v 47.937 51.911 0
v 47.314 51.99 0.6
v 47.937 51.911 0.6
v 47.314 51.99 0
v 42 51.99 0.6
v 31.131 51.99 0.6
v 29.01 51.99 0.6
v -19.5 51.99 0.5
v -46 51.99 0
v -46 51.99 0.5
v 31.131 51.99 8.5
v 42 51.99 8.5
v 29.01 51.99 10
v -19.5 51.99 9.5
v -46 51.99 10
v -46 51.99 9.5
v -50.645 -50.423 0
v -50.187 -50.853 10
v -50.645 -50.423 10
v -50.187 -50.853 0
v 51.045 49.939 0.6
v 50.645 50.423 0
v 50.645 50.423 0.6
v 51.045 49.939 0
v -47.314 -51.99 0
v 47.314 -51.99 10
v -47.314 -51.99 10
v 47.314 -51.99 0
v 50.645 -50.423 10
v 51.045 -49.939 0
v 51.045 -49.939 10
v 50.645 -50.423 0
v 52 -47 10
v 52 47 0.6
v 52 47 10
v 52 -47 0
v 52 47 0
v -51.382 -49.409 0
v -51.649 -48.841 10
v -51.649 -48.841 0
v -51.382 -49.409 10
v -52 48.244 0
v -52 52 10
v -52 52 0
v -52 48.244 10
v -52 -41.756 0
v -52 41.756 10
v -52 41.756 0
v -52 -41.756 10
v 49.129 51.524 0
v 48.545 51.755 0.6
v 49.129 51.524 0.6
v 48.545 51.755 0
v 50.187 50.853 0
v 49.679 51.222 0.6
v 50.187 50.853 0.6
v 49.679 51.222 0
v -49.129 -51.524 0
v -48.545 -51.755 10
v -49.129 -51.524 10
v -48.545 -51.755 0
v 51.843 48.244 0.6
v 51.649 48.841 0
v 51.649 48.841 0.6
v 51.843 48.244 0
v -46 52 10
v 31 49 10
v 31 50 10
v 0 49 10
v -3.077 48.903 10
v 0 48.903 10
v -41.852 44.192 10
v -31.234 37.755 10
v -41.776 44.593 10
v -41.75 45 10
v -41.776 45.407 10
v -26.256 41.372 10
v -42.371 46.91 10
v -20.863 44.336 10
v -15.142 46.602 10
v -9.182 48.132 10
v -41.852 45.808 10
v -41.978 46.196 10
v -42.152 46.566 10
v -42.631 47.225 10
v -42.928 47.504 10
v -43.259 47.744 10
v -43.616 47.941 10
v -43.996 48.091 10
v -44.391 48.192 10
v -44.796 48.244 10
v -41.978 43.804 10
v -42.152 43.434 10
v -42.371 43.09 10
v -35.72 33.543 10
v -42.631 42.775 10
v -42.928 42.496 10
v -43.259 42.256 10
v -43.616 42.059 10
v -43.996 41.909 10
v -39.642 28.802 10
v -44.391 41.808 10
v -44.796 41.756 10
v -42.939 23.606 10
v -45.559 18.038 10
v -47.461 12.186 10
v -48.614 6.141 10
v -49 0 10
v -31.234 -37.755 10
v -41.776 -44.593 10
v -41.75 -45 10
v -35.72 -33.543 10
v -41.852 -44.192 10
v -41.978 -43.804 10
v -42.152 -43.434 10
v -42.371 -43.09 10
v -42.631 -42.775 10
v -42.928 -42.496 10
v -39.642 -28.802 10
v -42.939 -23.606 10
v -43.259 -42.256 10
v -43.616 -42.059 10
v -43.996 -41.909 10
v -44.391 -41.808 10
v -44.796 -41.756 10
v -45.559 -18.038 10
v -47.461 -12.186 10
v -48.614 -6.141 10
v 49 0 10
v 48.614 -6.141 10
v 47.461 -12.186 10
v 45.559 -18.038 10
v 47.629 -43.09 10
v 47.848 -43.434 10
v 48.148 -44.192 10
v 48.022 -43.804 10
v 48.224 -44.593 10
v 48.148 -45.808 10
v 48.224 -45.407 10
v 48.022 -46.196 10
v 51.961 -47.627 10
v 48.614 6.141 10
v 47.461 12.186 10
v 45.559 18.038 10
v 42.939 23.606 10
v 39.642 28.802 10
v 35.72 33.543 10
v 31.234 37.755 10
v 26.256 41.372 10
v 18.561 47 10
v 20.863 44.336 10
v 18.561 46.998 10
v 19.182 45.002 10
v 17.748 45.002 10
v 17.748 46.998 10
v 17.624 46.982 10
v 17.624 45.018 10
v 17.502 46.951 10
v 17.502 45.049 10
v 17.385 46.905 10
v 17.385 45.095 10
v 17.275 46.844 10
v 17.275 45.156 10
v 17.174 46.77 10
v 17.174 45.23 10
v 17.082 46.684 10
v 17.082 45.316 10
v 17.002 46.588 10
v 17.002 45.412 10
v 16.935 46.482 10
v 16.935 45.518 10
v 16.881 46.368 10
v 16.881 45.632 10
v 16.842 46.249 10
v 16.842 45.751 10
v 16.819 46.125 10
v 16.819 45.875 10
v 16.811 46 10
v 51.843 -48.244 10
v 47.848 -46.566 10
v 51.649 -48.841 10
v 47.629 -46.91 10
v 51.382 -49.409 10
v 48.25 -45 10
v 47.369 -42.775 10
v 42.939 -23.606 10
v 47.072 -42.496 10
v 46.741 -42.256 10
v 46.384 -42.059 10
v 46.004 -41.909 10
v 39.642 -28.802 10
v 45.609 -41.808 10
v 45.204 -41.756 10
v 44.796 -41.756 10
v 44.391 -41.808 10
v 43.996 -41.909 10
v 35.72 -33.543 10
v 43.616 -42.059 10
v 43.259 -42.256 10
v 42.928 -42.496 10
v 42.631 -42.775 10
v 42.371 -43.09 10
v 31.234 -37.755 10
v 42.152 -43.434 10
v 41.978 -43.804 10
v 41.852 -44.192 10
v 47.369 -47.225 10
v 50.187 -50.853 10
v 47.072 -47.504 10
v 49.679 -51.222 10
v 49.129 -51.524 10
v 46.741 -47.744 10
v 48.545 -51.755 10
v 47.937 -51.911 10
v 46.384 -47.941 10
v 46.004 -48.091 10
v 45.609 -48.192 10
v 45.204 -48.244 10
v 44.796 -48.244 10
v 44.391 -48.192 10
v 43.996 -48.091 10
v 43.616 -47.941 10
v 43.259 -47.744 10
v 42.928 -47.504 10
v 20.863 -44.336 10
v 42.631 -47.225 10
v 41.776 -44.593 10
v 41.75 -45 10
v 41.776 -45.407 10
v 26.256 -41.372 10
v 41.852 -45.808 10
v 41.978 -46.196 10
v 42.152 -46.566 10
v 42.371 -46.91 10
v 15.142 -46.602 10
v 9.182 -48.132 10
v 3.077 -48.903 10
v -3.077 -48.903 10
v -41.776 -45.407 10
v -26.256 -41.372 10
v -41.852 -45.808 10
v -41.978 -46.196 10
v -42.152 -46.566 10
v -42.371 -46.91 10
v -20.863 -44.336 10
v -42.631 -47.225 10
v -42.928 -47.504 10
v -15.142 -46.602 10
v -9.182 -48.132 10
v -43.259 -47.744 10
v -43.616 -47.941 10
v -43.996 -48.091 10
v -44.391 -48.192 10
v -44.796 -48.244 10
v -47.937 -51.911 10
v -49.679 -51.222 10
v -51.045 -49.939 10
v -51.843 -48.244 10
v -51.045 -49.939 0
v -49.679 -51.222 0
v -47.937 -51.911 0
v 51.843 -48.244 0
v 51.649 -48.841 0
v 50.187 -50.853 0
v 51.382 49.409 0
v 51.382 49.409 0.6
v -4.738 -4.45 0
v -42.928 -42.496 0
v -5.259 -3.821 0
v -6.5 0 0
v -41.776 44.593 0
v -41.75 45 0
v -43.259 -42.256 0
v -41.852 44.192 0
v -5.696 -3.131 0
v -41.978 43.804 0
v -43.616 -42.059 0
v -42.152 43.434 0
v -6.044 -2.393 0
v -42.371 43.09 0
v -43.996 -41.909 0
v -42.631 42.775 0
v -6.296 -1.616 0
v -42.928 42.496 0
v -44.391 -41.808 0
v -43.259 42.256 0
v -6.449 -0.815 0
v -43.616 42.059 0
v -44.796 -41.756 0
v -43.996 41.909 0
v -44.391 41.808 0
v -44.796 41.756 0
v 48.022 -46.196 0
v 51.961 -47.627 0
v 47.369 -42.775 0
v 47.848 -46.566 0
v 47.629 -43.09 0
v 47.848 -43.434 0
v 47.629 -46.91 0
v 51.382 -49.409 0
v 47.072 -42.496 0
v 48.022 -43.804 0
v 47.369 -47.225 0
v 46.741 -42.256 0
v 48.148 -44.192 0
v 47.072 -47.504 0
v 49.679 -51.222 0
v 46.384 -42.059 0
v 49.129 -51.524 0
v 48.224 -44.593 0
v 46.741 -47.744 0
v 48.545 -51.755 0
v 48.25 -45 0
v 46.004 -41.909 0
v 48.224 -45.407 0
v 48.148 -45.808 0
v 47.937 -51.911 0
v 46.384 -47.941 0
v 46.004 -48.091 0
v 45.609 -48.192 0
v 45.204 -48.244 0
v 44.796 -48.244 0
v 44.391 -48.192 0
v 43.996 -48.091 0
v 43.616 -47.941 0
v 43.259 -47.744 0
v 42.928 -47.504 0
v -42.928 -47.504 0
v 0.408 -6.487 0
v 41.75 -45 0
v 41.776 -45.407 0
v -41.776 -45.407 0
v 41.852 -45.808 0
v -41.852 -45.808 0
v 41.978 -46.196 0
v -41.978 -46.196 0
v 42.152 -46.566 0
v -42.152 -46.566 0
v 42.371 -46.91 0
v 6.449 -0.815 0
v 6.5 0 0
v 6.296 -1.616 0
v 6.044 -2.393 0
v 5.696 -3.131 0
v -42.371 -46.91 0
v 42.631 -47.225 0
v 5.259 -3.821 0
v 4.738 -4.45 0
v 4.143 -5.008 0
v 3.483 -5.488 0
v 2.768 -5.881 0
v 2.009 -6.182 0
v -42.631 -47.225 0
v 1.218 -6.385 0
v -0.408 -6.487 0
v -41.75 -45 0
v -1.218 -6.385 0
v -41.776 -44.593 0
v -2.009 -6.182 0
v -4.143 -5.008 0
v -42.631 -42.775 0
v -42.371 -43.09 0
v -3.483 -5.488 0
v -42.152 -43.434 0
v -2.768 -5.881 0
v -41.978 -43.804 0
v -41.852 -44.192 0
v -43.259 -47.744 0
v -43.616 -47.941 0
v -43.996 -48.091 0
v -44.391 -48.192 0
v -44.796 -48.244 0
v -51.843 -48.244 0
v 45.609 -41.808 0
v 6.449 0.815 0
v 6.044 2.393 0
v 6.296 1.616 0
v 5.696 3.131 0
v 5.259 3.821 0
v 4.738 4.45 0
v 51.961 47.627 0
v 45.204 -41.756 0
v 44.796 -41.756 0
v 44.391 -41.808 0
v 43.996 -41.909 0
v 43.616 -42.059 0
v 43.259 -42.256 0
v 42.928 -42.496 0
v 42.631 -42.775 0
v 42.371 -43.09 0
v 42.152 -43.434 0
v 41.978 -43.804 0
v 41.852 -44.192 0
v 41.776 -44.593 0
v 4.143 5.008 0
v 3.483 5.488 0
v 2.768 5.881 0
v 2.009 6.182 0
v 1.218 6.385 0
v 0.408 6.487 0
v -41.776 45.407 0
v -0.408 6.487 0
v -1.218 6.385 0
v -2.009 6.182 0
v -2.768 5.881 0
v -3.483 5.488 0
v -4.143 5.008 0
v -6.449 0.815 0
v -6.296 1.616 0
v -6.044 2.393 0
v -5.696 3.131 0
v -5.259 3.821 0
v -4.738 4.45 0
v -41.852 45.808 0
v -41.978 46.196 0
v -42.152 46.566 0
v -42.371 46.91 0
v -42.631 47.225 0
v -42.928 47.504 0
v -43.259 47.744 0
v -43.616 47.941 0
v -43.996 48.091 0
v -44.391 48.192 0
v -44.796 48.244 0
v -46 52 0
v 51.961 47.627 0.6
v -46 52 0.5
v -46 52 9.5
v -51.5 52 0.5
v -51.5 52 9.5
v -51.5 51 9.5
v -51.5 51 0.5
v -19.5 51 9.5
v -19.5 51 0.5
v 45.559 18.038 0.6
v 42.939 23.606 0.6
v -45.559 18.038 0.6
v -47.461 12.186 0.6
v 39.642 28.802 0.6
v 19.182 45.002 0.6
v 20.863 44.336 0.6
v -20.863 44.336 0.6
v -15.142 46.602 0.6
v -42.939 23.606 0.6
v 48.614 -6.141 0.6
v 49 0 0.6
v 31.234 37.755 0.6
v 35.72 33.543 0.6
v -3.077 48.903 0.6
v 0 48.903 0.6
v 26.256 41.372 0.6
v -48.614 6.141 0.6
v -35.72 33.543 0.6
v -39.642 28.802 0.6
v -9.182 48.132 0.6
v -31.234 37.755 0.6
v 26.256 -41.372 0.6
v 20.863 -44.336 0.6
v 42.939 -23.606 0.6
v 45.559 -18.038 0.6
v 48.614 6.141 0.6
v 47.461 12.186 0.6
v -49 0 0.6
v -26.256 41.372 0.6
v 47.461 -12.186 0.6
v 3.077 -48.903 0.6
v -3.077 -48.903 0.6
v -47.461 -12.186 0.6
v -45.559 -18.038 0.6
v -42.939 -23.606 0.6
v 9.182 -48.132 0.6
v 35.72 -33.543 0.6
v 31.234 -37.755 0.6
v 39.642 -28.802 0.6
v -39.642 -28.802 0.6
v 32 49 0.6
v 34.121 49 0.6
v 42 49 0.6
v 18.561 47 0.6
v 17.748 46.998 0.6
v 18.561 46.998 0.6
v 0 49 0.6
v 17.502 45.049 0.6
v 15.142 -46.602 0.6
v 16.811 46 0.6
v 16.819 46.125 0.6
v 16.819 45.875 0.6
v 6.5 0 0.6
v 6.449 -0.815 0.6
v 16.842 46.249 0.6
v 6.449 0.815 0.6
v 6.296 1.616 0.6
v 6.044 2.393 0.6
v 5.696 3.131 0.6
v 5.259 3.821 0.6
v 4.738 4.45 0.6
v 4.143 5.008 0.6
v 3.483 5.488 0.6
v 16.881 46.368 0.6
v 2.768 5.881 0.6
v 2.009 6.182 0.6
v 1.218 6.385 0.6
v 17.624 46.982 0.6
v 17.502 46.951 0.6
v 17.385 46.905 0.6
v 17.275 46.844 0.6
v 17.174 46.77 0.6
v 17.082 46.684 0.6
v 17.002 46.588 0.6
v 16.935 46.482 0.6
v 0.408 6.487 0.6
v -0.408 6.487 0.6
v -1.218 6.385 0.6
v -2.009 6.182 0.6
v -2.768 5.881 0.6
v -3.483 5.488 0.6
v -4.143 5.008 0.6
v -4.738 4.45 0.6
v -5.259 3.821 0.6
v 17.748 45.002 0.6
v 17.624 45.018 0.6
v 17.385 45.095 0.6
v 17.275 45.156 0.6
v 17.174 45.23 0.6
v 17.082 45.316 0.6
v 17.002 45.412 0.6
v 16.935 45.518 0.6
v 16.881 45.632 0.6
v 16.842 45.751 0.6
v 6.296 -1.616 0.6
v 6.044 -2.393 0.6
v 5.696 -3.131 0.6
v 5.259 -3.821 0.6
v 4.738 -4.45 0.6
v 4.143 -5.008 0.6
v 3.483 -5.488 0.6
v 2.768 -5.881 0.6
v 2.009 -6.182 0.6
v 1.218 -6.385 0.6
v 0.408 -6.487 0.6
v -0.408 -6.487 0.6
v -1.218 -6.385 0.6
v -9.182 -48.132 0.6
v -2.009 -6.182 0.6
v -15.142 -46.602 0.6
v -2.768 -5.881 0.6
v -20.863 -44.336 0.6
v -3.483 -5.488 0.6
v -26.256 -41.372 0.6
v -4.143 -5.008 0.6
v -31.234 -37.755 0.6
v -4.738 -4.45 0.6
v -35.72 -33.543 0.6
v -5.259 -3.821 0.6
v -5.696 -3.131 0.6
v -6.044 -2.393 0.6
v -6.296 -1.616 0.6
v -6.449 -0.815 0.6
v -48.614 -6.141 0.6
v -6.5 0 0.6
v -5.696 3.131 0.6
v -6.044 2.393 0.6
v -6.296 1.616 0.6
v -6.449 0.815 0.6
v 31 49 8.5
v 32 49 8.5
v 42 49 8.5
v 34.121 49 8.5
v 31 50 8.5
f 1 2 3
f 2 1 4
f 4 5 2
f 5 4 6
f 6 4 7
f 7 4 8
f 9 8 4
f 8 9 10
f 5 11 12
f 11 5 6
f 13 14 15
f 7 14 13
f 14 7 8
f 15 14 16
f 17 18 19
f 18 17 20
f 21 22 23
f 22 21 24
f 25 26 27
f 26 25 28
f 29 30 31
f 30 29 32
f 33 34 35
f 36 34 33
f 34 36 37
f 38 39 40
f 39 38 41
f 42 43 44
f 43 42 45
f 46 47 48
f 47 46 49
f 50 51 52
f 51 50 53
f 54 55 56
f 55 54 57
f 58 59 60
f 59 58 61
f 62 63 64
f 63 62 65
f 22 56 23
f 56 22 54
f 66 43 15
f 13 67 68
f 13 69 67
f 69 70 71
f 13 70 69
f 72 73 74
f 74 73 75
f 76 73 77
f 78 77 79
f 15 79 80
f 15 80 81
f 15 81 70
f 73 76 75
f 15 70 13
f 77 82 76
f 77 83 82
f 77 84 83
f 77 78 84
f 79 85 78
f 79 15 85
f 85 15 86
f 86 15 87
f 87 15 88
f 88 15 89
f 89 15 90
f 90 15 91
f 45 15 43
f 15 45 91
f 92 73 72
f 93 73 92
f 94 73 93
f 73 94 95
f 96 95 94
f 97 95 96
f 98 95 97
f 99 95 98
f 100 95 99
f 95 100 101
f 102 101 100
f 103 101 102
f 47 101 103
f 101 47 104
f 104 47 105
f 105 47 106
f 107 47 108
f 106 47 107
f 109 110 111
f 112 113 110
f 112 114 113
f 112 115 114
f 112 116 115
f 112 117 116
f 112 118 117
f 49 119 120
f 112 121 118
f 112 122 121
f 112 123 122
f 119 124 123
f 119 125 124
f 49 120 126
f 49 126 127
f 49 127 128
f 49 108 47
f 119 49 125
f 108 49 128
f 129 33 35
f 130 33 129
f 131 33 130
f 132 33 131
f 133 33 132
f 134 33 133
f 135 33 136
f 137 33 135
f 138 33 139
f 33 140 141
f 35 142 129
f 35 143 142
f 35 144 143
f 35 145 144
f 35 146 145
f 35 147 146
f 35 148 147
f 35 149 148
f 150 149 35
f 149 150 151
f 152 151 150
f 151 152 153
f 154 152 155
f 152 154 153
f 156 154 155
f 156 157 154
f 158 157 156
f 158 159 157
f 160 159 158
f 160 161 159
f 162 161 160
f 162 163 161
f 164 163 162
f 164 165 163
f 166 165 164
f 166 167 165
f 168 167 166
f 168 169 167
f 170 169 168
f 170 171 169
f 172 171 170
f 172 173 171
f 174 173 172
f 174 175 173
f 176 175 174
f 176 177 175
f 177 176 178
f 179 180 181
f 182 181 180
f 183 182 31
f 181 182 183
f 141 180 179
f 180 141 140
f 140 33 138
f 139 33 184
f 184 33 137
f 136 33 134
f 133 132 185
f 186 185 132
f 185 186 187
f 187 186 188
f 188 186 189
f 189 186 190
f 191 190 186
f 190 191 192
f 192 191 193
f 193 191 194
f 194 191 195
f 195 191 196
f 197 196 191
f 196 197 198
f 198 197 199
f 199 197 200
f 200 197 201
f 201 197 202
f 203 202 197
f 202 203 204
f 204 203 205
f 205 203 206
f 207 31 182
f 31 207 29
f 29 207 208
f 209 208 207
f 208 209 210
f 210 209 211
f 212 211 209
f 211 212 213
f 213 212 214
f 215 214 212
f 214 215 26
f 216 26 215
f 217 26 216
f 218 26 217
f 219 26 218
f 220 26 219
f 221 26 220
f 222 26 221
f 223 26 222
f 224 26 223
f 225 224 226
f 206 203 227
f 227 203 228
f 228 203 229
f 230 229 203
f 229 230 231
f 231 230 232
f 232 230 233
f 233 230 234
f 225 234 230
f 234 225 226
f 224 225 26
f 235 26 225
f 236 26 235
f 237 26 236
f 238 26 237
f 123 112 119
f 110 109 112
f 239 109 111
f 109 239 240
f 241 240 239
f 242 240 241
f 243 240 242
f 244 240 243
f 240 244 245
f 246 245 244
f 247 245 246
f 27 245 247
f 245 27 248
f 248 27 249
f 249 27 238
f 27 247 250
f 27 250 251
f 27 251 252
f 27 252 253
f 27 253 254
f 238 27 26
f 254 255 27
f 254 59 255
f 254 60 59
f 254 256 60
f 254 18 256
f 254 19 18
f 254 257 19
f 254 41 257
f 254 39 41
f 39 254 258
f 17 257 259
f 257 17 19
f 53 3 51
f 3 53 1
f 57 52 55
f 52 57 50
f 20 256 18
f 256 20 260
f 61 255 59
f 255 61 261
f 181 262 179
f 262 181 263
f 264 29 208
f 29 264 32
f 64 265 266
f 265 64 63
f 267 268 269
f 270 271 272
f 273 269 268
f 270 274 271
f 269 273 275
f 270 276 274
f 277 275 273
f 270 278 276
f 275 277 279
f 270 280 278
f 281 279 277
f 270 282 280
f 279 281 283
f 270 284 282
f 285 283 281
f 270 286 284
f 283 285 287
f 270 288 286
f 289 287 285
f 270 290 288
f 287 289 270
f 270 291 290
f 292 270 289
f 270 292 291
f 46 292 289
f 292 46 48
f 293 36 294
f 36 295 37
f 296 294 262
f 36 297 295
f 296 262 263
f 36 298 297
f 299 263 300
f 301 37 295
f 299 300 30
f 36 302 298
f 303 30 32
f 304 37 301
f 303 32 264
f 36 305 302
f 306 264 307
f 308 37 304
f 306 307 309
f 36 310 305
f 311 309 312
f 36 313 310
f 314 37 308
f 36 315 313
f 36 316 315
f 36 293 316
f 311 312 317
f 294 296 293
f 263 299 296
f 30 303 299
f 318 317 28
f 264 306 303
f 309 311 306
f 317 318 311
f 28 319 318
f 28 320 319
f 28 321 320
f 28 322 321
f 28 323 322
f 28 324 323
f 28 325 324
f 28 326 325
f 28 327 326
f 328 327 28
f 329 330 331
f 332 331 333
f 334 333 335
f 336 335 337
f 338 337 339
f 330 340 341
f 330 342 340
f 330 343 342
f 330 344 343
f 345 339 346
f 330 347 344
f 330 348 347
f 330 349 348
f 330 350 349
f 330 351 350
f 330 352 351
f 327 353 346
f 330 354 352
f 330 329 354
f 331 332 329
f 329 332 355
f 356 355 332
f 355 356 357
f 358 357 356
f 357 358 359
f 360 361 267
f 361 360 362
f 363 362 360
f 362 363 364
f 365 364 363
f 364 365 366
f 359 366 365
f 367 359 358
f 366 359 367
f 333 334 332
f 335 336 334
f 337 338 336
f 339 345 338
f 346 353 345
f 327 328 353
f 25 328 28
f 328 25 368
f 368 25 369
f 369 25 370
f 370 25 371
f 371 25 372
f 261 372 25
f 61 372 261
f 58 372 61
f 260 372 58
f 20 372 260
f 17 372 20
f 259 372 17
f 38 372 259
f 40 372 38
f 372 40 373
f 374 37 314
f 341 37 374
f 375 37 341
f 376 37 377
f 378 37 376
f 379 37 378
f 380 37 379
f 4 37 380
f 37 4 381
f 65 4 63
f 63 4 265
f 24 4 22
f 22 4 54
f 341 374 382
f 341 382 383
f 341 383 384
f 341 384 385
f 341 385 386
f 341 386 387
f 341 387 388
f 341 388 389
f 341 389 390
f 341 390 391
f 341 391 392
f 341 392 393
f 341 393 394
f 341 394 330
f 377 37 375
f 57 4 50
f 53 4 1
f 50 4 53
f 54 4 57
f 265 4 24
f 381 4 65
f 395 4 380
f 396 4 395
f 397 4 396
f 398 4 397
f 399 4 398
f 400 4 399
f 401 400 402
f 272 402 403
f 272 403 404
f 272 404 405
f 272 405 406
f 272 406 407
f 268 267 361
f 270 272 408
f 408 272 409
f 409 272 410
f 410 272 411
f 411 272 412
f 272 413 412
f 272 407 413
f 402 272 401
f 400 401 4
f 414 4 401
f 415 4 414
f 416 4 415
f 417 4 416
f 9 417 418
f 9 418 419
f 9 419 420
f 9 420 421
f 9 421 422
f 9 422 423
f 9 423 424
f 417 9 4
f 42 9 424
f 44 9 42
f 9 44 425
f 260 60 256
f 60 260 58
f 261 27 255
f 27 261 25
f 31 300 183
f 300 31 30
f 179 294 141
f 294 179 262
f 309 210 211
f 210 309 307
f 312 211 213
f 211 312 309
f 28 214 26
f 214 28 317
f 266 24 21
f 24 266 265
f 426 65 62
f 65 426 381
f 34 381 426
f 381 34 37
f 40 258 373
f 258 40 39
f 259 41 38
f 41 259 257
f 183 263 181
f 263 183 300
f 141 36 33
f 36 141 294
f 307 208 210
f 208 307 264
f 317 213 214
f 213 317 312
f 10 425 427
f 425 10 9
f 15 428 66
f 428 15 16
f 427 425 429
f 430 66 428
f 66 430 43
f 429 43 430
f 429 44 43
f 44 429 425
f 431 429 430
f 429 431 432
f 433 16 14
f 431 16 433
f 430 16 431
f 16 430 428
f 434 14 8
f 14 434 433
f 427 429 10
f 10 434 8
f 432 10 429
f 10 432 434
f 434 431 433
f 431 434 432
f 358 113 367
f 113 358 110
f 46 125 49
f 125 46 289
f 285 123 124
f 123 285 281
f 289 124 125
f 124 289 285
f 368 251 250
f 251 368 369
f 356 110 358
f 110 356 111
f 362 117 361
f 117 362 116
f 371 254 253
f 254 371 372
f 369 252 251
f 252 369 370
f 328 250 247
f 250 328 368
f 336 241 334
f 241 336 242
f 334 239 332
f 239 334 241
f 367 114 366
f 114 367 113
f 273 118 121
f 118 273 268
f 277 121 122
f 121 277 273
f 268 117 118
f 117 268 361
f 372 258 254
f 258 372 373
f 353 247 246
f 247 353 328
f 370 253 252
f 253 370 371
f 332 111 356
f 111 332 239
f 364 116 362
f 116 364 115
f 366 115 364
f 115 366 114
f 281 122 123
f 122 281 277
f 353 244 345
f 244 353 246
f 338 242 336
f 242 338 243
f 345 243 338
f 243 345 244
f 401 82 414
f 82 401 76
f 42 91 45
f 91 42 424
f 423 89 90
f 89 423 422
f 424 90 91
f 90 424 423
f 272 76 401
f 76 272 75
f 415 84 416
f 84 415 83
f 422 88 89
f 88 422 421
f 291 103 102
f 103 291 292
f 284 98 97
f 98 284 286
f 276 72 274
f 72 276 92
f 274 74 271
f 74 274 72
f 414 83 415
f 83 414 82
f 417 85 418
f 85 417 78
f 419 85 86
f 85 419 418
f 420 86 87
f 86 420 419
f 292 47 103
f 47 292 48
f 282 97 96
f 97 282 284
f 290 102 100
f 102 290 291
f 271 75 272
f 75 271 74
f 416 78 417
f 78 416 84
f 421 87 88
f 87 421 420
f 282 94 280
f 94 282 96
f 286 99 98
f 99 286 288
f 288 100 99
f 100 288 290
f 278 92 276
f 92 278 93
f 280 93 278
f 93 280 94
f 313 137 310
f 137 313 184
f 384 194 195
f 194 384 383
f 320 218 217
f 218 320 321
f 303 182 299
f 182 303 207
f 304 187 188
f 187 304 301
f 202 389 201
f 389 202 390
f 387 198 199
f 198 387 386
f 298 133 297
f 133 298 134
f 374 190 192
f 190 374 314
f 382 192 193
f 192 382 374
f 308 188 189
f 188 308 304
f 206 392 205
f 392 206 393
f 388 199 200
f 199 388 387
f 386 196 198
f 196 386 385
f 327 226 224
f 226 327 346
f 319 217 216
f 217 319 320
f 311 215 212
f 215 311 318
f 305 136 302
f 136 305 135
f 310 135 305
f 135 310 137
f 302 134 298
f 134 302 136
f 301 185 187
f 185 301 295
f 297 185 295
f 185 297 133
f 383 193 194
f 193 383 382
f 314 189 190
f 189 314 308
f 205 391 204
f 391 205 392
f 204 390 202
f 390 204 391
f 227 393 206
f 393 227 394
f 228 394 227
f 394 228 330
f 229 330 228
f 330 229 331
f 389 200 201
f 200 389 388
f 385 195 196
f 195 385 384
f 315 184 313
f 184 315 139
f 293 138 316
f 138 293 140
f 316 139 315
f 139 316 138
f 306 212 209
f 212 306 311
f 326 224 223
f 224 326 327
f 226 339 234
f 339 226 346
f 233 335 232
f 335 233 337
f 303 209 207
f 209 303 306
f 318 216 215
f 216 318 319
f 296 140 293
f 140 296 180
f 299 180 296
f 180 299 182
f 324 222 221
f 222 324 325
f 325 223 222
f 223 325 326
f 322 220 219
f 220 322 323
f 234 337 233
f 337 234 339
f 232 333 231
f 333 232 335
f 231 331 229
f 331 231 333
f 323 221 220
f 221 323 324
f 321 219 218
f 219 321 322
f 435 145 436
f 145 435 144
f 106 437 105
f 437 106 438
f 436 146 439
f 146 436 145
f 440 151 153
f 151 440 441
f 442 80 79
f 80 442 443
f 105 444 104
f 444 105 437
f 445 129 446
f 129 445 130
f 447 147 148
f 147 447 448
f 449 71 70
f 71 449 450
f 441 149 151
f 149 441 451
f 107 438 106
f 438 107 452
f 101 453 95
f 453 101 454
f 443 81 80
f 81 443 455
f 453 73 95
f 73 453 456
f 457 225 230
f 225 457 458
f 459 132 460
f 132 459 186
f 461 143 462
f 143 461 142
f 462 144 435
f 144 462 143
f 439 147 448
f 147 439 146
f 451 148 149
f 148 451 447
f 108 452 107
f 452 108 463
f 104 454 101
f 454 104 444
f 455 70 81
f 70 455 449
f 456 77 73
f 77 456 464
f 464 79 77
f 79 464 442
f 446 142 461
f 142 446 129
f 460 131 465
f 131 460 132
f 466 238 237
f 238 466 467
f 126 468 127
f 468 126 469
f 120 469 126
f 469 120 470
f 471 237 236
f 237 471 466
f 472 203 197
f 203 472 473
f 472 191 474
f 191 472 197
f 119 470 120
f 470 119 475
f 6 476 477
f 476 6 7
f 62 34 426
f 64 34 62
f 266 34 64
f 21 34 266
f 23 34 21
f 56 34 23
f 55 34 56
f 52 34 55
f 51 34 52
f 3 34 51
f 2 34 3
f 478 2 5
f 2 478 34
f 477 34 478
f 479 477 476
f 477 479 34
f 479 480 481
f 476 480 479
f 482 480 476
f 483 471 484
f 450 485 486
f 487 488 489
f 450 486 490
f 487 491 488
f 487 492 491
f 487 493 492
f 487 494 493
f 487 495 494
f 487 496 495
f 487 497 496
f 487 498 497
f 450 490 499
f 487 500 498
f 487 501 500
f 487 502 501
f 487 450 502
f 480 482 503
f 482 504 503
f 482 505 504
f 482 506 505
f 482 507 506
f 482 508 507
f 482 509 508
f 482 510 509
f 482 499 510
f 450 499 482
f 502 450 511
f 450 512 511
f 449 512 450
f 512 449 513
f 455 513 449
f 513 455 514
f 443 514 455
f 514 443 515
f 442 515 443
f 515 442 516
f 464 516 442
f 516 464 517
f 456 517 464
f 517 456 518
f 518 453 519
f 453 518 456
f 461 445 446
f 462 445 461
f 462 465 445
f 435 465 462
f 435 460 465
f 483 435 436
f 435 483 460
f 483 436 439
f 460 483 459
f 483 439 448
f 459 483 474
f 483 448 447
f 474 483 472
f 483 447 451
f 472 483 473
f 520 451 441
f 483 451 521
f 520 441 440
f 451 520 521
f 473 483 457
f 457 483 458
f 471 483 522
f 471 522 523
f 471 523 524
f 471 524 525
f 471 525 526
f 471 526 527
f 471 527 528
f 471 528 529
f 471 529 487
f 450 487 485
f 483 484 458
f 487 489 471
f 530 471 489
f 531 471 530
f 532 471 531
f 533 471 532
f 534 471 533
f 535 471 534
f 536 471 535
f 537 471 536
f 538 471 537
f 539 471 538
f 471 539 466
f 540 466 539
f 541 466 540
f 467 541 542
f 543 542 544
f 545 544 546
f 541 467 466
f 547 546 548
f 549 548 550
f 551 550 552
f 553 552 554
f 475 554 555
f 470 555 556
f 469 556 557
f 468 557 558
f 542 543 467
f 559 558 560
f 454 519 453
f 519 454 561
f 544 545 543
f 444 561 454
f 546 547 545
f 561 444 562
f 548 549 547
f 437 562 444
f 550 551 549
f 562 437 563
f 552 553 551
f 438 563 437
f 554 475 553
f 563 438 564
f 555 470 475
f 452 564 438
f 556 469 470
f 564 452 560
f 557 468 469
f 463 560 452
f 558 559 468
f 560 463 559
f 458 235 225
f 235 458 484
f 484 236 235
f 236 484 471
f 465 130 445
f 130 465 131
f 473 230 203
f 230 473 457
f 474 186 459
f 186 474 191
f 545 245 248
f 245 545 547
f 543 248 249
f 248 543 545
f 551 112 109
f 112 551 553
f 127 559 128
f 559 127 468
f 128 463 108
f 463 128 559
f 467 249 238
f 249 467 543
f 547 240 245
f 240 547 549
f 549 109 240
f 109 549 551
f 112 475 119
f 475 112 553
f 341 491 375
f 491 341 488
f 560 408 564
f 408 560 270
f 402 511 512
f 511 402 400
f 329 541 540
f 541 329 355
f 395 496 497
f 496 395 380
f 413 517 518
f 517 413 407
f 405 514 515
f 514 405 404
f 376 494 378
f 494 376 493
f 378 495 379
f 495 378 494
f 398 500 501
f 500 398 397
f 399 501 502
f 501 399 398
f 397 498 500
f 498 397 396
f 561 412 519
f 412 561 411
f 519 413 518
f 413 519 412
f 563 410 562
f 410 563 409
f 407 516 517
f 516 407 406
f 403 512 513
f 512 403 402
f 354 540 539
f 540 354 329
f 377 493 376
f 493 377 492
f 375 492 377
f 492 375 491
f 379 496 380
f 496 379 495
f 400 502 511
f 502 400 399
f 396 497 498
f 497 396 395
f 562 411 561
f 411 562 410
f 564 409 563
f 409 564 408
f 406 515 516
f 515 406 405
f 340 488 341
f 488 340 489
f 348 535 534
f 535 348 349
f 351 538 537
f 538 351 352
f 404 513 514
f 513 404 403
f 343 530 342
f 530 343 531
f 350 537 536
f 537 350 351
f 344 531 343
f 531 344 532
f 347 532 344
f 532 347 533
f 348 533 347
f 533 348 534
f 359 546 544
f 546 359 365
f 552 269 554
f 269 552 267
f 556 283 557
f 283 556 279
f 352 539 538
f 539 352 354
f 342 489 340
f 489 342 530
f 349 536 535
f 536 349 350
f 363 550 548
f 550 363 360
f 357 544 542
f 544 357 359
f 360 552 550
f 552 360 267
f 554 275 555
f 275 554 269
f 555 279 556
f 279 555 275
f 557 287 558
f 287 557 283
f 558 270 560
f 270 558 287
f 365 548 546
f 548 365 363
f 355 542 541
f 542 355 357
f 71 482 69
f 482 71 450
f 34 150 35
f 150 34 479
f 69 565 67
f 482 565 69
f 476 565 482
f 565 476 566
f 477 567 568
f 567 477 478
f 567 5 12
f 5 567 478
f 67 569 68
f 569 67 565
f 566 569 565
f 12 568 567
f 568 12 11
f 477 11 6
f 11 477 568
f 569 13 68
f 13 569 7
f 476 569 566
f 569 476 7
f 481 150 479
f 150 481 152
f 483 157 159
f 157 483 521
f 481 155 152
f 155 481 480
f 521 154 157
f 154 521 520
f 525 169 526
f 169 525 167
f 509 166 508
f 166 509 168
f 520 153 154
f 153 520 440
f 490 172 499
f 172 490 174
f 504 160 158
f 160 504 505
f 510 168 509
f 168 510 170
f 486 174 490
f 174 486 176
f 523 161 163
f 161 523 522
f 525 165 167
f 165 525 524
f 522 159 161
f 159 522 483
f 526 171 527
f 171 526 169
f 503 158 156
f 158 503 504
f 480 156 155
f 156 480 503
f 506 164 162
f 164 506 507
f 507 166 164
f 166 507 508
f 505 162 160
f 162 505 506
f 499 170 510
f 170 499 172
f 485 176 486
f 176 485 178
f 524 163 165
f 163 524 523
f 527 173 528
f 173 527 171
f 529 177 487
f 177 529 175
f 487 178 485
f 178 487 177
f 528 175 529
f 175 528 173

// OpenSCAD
$fn = 50;


union() {
	difference() {
		union() {
			translate(v = [0, 0, 0]) {
				rotate(a = [0, 0, 0]) {
					hull() {
						translate(v = [-47.0000000000, 47.0000000000, 0]) {
							rotate(a = [0, 0, 0]) {
								translate(v = [0, 0, 0]) {
									rotate(a = [0, 0, 0]) {
										cylinder(h = 10, r = 5);
									}
								}
							}
						}
						translate(v = [47.0000000000, 47.0000000000, 0]) {
							rotate(a = [0, 0, 0]) {
								translate(v = [0, 0, 0]) {
									rotate(a = [0, 0, 0]) {
										cylinder(h = 10, r = 5);
									}
								}
							}
						}
						translate(v = [-47.0000000000, -47.0000000000, 0]) {
							rotate(a = [0, 0, 0]) {
								translate(v = [0, 0, 0]) {
									rotate(a = [0, 0, 0]) {
										cylinder(h = 10, r = 5);
									}
								}
							}
						}
						translate(v = [47.0000000000, -47.0000000000, 0]) {
							rotate(a = [0, 0, 0]) {
								translate(v = [0, 0, 0]) {
									rotate(a = [0, 0, 0]) {
										cylinder(h = 10, r = 5);
									}
								}
							}
						}
					}
				}
			}
			translate(v = [-52.0000000000, 46.0000000000, 0]) {
				rotate(a = [0, 0, 0]) {
					cube(size = [6, 6, 10]);
				}
			}
		}
		union() {
			#translate(v = [-51.5000000000, 51.0000000000, 0.5000000000]) {
				rotate(a = [0, 0, 0]) {
					cube(size = [32, 1, 9.0000000000]);
				}
			}
			translate(v = [-52.5000000000, -45.0000000000, -125]) {
				rotate(a = [0, 0, 0]) {
					hull() {
						translate(v = [7.5000000000, 0, 0]) {
							rotate(a = [0, 0, 0]) {
								translate(v = [0, 0, 0]) {
									rotate(a = [0, 0, 0]) {
										cylinder(h = 250, r = 3.2500000000);
									}
								}
							}
						}
						translate(v = [-7.5000000000, 0, 0]) {
							rotate(a = [0, 0, 0]) {
								translate(v = [0, 0, 0]) {
									rotate(a = [0, 0, 0]) {
										cylinder(h = 250, r = 3.2500000000);
									}
								}
							}
						}
					}
				}
			}
			translate(v = [-52.5000000000, 45.0000000000, -125]) {
				rotate(a = [0, 0, 0]) {
					hull() {
						translate(v = [7.5000000000, 0, 0]) {
							rotate(a = [0, 0, 0]) {
								translate(v = [0, 0, 0]) {
									rotate(a = [0, 0, 0]) {
										cylinder(h = 250, r = 3.2500000000);
									}
								}
							}
						}
						translate(v = [-7.5000000000, 0, 0]) {
							rotate(a = [0, 0, 0]) {
								translate(v = [0, 0, 0]) {
									rotate(a = [0, 0, 0]) {
										cylinder(h = 250, r = 3.2500000000);
									}
								}
							}
						}
					}
				}
			}
			translate(v = [45.0000000000, -45.0000000000, -125.0000000000]) {
				rotate(a = [0, 0, 0]) {
					cylinder(h = 250, r = 3.2500000000);
				}
			}
			translate(v = [0, 0, 0.6000000000]) {
				rotate(a = [0, 0, 0]) {
					cylinder(h = 12.4000000000, r = 49.0000000000);
				}
			}
			translate(v = [0, 0, -5.0000000000]) {
				rotate(a = [0, 0, 0]) {
					cylinder(h = 10, r = 6.5000000000);
				}
			}
			translate(v = [0.0000000000, 47.0000000000, 0.6000000000]) {
				rotate(a = [0, 0, 0]) {
					cube(size = [52.0000000000, 2, 12.4000000000]);
				}
			}
			translate(v = [42.0000000000, 47.0000000000, 0.6000000000]) {
				rotate(a = [0, 0, 0]) {
					cube(size = [10, 5, 12.4000000000]);
				}
			}
			translate(v = [31.0000000000, 47.0000000000, 8.5000000000]) {
				rotate(a = [0, 0, 0]) {
					cube(size = [21, 5, 1.5000000000]);
				}
			}
			translate(v = [28.2500000000, 52.7500000000, 0.6000000000]) {
				rotate(a = [0, 0, -45]) {
					cube(size = [7.5000000000, 1.5000000000, 12.4000000000]);
				}
			}
			translate(v = [11.0610000000, 45.0000000000, 0.6000000000]) {
				rotate(a = [0, 0, 0]) {
					cube(size = [7.5000000000, 2, 9.4000000000]);
				}
			}
		}
	}
	union() {
		translate(v = [20.3110000000, 46.0000000000, 0]) {
			rotate(a = [0, 0, 0]) {
				hull() {
					translate(v = [2.5000000000, 0, 0]) {
						rotate(a = [0, 0, 0]) {
							#translate(v = [0, 0, 0]) {
								rotate(a = [0, 0, 0]) {
									cylinder(h = 10, r = 1.0000000000);
								}
							}
						}
					}
					translate(v = [-2.5000000000, 0, 0]) {
						rotate(a = [0, 0, 0]) {
							#translate(v = [0, 0, 0]) {
								rotate(a = [0, 0, 0]) {
									cylinder(h = 10, r = 1.0000000000);
								}
							}
						}
					}
				}
			}
		}
	}
}
